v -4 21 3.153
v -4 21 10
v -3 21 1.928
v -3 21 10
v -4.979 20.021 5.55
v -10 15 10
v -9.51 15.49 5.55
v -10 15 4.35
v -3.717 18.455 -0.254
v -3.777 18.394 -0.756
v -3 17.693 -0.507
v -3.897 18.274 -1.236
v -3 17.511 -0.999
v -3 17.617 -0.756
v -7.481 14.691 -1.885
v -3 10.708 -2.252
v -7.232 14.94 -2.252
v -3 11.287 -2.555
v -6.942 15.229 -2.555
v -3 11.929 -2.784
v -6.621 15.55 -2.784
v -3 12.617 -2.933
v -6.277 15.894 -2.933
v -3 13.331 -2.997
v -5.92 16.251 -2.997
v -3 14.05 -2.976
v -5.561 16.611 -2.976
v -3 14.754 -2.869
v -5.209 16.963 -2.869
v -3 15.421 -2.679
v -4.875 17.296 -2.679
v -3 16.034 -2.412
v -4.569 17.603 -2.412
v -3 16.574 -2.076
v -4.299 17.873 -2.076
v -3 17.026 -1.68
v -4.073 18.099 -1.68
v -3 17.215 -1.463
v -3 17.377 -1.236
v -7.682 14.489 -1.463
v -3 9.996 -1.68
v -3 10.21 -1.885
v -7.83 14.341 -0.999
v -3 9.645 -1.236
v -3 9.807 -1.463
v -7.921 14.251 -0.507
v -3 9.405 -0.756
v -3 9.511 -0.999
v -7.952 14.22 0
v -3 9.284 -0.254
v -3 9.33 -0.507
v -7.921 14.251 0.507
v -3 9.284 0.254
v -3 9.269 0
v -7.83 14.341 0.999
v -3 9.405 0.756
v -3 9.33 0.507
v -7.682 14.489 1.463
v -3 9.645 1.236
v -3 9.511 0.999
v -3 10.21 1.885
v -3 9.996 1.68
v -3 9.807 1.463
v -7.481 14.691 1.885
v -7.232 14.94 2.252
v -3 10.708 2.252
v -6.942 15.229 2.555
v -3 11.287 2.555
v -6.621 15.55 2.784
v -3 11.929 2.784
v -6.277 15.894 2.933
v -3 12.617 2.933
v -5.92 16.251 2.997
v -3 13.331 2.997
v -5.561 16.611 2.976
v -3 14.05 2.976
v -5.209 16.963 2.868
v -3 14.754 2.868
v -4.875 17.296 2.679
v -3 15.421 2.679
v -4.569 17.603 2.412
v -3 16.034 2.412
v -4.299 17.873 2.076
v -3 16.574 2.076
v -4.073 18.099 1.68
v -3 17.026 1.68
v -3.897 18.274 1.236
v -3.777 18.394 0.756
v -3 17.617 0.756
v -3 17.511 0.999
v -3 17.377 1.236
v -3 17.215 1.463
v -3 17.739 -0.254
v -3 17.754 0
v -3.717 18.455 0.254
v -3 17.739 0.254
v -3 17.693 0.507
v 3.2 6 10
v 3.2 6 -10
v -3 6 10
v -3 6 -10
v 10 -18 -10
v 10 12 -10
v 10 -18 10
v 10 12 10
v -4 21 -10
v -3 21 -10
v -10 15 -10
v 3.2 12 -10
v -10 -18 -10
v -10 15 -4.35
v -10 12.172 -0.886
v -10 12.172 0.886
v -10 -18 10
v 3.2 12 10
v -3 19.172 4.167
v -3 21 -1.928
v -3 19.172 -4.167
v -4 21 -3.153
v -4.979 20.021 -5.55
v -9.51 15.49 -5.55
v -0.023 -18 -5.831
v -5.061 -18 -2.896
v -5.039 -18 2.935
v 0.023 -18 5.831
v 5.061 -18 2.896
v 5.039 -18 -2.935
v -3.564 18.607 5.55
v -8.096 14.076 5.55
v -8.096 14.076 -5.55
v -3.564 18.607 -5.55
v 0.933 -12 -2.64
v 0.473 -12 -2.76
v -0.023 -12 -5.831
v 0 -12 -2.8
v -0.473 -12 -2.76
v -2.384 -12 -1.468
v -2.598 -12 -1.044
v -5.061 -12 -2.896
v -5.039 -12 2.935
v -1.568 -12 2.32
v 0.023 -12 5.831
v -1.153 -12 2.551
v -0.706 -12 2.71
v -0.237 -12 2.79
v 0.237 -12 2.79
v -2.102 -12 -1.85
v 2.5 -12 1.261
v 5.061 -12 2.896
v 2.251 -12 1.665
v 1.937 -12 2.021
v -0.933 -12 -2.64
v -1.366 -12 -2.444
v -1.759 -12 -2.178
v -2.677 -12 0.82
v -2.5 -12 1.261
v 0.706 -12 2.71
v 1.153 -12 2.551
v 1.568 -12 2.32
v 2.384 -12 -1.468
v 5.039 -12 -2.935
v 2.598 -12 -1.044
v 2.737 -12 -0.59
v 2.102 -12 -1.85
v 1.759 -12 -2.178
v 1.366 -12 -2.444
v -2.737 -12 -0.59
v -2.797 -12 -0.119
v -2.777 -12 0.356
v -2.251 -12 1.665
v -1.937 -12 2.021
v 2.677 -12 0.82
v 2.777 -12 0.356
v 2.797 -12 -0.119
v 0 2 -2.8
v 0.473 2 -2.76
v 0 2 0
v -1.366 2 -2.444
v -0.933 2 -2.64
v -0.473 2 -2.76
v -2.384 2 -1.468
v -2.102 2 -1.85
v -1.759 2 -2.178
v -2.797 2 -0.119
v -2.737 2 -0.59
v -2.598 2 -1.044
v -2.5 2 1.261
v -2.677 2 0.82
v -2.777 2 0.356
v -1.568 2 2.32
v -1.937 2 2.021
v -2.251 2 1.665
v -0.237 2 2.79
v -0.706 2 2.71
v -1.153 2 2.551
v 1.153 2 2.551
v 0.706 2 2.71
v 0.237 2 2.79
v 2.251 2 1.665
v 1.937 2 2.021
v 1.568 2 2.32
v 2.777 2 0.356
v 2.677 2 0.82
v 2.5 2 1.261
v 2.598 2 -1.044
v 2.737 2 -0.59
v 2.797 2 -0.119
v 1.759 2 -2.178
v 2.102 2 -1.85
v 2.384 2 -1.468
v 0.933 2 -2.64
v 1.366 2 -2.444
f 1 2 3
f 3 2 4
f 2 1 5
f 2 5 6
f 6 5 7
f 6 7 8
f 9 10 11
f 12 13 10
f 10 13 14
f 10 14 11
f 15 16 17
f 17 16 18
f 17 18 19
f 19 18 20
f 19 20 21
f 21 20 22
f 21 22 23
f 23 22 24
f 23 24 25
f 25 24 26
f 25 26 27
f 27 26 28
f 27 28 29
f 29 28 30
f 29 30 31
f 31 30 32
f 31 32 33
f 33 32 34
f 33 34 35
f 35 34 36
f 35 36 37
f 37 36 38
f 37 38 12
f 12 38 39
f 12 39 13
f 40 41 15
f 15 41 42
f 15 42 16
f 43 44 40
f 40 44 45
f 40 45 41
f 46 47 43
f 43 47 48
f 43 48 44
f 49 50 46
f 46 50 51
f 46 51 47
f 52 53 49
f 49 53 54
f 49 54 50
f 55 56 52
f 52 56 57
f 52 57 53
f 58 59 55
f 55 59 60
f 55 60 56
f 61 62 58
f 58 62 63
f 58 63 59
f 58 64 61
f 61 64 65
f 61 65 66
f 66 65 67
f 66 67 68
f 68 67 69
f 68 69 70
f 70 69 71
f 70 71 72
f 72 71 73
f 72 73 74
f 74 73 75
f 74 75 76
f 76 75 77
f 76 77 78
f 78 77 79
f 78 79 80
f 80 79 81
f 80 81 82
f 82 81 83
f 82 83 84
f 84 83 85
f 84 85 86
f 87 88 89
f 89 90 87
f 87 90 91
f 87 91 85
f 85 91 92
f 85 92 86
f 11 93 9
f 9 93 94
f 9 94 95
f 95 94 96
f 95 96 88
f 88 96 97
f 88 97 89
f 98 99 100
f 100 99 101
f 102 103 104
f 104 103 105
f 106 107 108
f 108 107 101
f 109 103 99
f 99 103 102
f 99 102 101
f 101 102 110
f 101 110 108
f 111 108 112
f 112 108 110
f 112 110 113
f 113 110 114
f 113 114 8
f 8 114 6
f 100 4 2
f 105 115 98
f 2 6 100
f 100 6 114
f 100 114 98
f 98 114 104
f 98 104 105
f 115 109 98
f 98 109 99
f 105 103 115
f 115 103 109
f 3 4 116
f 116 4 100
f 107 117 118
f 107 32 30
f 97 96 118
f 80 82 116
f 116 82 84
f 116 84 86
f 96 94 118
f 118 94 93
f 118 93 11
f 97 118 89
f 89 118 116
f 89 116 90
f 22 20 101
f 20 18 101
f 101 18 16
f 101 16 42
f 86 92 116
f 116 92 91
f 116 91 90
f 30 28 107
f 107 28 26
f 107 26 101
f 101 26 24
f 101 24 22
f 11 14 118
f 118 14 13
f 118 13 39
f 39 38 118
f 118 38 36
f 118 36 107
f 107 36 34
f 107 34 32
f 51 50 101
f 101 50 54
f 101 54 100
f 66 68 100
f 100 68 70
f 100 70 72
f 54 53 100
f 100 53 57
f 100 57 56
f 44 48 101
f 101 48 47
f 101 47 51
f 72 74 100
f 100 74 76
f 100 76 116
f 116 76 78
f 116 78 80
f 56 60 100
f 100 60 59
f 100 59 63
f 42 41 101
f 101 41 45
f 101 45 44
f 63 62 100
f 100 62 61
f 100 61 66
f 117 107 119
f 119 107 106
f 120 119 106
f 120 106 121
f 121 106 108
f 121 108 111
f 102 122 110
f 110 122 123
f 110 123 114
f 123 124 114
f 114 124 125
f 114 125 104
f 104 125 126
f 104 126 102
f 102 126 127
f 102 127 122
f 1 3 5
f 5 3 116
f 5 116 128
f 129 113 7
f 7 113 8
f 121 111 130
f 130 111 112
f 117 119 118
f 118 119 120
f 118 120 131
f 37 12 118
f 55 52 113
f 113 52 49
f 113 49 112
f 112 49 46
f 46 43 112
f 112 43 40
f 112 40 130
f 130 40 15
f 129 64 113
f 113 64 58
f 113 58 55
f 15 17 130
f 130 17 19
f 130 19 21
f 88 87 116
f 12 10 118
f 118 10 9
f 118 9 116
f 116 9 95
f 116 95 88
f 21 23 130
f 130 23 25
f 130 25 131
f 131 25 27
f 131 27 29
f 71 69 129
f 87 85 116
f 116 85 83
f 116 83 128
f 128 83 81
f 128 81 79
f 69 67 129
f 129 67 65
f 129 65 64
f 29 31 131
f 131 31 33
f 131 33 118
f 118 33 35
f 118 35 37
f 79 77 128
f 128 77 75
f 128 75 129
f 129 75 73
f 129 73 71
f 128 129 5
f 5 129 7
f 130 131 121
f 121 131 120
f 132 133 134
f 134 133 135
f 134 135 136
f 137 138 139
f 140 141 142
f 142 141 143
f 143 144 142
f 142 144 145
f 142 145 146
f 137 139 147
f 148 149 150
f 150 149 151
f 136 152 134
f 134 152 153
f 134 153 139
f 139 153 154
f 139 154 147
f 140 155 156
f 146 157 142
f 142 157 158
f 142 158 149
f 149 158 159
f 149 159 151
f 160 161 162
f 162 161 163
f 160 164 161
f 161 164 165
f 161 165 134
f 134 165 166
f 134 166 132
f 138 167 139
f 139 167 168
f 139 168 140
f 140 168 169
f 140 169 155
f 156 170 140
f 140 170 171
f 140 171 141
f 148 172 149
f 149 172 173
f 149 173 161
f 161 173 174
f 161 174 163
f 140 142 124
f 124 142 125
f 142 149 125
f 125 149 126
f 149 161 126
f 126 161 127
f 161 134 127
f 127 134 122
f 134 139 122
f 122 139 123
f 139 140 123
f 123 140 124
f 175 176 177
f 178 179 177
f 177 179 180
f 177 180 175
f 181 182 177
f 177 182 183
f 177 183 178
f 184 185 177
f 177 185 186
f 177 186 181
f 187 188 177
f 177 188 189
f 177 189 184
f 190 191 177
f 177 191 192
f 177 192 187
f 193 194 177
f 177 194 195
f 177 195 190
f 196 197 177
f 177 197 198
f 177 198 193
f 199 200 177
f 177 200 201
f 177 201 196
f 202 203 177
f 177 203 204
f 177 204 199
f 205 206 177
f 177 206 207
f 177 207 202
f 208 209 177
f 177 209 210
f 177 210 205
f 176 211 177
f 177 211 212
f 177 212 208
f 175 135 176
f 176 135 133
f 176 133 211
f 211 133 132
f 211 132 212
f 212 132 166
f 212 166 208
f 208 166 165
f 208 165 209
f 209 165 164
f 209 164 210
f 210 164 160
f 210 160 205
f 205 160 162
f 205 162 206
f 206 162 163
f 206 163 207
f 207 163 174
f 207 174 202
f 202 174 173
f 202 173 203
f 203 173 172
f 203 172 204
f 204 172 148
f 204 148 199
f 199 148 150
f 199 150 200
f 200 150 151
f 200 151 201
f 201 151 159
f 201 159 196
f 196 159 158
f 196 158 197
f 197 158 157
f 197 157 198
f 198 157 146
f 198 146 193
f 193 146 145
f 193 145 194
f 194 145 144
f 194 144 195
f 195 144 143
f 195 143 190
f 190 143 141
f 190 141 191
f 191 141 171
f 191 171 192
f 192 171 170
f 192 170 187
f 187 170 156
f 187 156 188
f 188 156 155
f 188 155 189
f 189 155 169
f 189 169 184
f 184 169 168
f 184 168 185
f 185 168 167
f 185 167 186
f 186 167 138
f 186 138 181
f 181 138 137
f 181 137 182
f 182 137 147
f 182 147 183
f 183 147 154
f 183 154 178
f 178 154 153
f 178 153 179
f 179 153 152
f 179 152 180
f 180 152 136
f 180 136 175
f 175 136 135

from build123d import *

# Parameters (mm, degrees)
SKETCH1_W           = 20
SKETCH1_H           = 20
BOSS_EXTRUDE1_DEPTH = 6
SKETCH2_W           = 6.8
SKETCH2_H           = 20
BOSS_EXTRUDE2_DEPTH = 6
SKETCH3_W           = 7
SKETCH3_H           = 20
BOSS_EXTRUDE3_DEPTH = 15
CHAMFER1_SIZE       = 6
SKETCH4_R           = 3
CUT_EXTRUDE1_DEPTH  = 10
SKETCH5_W           = 20
SKETCH5_H           = 20
BOSS_EXTRUDE4_DEPTH = 18
CUT_EXTRUDE2_DEPTH  = 2
SKETCH7_R           = 2.8
CUT_EXTRUDE3_DEPTH  = 20
CUT_EXTRUDE4_DEPTH  = 6


with BuildPart() as part:
    # Sketch1 → Boss-Extrude1 (new body)
    with BuildSketch(Plane(origin=(0, 0, 0), x_dir=(1, 0, 0), z_dir=(0, 1, 0))):
        Rectangle(SKETCH1_W, SKETCH1_H)
    extrude(amount=BOSS_EXTRUDE1_DEPTH)

    # Sketch2 → Boss-Extrude2 (add)
    with BuildSketch(Plane(origin=(0, 6, 0), x_dir=(1, 0, 0), z_dir=(0, 1, 0))):
        with Locations((6.6, 0)):
            Rectangle(SKETCH2_W, SKETCH2_H)
    extrude(amount=BOSS_EXTRUDE2_DEPTH)

    # Sketch3 → Boss-Extrude3 (add)
    with BuildSketch(Plane(origin=(0, 6, 0), x_dir=(1, 0, 0), z_dir=(0, 1, 0))):
        with Locations((-6.5, 0)):
            Rectangle(SKETCH3_W, SKETCH3_H)
    extrude(amount=BOSS_EXTRUDE3_DEPTH)

    # Chamfer1
    chamfer1_edges = [part.edges().sort_by_distance(p)[0] for p in [
        (-10, 21, 0),
    ]]
    chamfer(chamfer1_edges, length=CHAMFER1_SIZE)

    # Sketch4 → Cut-Extrude1 (cut)
    with BuildSketch(Plane(origin=(-12.5, 12.5, 0), x_dir=(0, 0, 1), z_dir=(-0.7071067811865489, 0.7071067811865462, 0))):
        with Locations(Location((0, 7.432512212, 0), (0, 0, 270))):
            Circle(SKETCH4_R)
    extrude(amount=-CUT_EXTRUDE1_DEPTH, mode=Mode.SUBTRACT)

    # Sketch5 → Boss-Extrude4 (add)
    with BuildSketch(Plane.XZ):
        Rectangle(SKETCH5_W, SKETCH5_H)
    extrude(amount=BOSS_EXTRUDE4_DEPTH)

    # Sketch6 → Cut-Extrude2 (cut)
    with BuildSketch(Plane(origin=(-12.5, 12.5, 0), x_dir=(0, 0, 1), z_dir=(-0.7071067811865489, 0.7071067811865462, 0))):
        Polygon((0, 13.8411002), (-5.55, 10.636806206), (-5.55, 4.228218218), (0, 1.023924224), (5.55, 4.228218218), (5.55, 10.636806206), align=None)
    extrude(amount=-CUT_EXTRUDE2_DEPTH, mode=Mode.SUBTRACT)

    # Sketch7 → Cut-Extrude3 (cut)
    with BuildSketch(Plane(origin=(0, -18, 0), x_dir=(-1, 0, 0), z_dir=(0, -1, 0))):
        with Locations(Location((0, 0, 0), (0, 0, 90))):
            Circle(SKETCH7_R)
    extrude(amount=-CUT_EXTRUDE3_DEPTH, mode=Mode.SUBTRACT)

    # Sketch8 → Cut-Extrude4 (cut)
    with BuildSketch(Plane(origin=(0, -18, 0), x_dir=(-1, 0, 0), z_dir=(0, -1, 0))):
        Polygon((5.038618856, -2.935243322), (5.061304711, 2.895950268), (0.022685855, 5.83119359), (-5.038618856, 2.935243322), (-5.061304711, -2.895950268), (-0.022685855, -5.83119359), align=None)
    extrude(amount=-CUT_EXTRUDE4_DEPTH, mode=Mode.SUBTRACT)


solid = part.part
